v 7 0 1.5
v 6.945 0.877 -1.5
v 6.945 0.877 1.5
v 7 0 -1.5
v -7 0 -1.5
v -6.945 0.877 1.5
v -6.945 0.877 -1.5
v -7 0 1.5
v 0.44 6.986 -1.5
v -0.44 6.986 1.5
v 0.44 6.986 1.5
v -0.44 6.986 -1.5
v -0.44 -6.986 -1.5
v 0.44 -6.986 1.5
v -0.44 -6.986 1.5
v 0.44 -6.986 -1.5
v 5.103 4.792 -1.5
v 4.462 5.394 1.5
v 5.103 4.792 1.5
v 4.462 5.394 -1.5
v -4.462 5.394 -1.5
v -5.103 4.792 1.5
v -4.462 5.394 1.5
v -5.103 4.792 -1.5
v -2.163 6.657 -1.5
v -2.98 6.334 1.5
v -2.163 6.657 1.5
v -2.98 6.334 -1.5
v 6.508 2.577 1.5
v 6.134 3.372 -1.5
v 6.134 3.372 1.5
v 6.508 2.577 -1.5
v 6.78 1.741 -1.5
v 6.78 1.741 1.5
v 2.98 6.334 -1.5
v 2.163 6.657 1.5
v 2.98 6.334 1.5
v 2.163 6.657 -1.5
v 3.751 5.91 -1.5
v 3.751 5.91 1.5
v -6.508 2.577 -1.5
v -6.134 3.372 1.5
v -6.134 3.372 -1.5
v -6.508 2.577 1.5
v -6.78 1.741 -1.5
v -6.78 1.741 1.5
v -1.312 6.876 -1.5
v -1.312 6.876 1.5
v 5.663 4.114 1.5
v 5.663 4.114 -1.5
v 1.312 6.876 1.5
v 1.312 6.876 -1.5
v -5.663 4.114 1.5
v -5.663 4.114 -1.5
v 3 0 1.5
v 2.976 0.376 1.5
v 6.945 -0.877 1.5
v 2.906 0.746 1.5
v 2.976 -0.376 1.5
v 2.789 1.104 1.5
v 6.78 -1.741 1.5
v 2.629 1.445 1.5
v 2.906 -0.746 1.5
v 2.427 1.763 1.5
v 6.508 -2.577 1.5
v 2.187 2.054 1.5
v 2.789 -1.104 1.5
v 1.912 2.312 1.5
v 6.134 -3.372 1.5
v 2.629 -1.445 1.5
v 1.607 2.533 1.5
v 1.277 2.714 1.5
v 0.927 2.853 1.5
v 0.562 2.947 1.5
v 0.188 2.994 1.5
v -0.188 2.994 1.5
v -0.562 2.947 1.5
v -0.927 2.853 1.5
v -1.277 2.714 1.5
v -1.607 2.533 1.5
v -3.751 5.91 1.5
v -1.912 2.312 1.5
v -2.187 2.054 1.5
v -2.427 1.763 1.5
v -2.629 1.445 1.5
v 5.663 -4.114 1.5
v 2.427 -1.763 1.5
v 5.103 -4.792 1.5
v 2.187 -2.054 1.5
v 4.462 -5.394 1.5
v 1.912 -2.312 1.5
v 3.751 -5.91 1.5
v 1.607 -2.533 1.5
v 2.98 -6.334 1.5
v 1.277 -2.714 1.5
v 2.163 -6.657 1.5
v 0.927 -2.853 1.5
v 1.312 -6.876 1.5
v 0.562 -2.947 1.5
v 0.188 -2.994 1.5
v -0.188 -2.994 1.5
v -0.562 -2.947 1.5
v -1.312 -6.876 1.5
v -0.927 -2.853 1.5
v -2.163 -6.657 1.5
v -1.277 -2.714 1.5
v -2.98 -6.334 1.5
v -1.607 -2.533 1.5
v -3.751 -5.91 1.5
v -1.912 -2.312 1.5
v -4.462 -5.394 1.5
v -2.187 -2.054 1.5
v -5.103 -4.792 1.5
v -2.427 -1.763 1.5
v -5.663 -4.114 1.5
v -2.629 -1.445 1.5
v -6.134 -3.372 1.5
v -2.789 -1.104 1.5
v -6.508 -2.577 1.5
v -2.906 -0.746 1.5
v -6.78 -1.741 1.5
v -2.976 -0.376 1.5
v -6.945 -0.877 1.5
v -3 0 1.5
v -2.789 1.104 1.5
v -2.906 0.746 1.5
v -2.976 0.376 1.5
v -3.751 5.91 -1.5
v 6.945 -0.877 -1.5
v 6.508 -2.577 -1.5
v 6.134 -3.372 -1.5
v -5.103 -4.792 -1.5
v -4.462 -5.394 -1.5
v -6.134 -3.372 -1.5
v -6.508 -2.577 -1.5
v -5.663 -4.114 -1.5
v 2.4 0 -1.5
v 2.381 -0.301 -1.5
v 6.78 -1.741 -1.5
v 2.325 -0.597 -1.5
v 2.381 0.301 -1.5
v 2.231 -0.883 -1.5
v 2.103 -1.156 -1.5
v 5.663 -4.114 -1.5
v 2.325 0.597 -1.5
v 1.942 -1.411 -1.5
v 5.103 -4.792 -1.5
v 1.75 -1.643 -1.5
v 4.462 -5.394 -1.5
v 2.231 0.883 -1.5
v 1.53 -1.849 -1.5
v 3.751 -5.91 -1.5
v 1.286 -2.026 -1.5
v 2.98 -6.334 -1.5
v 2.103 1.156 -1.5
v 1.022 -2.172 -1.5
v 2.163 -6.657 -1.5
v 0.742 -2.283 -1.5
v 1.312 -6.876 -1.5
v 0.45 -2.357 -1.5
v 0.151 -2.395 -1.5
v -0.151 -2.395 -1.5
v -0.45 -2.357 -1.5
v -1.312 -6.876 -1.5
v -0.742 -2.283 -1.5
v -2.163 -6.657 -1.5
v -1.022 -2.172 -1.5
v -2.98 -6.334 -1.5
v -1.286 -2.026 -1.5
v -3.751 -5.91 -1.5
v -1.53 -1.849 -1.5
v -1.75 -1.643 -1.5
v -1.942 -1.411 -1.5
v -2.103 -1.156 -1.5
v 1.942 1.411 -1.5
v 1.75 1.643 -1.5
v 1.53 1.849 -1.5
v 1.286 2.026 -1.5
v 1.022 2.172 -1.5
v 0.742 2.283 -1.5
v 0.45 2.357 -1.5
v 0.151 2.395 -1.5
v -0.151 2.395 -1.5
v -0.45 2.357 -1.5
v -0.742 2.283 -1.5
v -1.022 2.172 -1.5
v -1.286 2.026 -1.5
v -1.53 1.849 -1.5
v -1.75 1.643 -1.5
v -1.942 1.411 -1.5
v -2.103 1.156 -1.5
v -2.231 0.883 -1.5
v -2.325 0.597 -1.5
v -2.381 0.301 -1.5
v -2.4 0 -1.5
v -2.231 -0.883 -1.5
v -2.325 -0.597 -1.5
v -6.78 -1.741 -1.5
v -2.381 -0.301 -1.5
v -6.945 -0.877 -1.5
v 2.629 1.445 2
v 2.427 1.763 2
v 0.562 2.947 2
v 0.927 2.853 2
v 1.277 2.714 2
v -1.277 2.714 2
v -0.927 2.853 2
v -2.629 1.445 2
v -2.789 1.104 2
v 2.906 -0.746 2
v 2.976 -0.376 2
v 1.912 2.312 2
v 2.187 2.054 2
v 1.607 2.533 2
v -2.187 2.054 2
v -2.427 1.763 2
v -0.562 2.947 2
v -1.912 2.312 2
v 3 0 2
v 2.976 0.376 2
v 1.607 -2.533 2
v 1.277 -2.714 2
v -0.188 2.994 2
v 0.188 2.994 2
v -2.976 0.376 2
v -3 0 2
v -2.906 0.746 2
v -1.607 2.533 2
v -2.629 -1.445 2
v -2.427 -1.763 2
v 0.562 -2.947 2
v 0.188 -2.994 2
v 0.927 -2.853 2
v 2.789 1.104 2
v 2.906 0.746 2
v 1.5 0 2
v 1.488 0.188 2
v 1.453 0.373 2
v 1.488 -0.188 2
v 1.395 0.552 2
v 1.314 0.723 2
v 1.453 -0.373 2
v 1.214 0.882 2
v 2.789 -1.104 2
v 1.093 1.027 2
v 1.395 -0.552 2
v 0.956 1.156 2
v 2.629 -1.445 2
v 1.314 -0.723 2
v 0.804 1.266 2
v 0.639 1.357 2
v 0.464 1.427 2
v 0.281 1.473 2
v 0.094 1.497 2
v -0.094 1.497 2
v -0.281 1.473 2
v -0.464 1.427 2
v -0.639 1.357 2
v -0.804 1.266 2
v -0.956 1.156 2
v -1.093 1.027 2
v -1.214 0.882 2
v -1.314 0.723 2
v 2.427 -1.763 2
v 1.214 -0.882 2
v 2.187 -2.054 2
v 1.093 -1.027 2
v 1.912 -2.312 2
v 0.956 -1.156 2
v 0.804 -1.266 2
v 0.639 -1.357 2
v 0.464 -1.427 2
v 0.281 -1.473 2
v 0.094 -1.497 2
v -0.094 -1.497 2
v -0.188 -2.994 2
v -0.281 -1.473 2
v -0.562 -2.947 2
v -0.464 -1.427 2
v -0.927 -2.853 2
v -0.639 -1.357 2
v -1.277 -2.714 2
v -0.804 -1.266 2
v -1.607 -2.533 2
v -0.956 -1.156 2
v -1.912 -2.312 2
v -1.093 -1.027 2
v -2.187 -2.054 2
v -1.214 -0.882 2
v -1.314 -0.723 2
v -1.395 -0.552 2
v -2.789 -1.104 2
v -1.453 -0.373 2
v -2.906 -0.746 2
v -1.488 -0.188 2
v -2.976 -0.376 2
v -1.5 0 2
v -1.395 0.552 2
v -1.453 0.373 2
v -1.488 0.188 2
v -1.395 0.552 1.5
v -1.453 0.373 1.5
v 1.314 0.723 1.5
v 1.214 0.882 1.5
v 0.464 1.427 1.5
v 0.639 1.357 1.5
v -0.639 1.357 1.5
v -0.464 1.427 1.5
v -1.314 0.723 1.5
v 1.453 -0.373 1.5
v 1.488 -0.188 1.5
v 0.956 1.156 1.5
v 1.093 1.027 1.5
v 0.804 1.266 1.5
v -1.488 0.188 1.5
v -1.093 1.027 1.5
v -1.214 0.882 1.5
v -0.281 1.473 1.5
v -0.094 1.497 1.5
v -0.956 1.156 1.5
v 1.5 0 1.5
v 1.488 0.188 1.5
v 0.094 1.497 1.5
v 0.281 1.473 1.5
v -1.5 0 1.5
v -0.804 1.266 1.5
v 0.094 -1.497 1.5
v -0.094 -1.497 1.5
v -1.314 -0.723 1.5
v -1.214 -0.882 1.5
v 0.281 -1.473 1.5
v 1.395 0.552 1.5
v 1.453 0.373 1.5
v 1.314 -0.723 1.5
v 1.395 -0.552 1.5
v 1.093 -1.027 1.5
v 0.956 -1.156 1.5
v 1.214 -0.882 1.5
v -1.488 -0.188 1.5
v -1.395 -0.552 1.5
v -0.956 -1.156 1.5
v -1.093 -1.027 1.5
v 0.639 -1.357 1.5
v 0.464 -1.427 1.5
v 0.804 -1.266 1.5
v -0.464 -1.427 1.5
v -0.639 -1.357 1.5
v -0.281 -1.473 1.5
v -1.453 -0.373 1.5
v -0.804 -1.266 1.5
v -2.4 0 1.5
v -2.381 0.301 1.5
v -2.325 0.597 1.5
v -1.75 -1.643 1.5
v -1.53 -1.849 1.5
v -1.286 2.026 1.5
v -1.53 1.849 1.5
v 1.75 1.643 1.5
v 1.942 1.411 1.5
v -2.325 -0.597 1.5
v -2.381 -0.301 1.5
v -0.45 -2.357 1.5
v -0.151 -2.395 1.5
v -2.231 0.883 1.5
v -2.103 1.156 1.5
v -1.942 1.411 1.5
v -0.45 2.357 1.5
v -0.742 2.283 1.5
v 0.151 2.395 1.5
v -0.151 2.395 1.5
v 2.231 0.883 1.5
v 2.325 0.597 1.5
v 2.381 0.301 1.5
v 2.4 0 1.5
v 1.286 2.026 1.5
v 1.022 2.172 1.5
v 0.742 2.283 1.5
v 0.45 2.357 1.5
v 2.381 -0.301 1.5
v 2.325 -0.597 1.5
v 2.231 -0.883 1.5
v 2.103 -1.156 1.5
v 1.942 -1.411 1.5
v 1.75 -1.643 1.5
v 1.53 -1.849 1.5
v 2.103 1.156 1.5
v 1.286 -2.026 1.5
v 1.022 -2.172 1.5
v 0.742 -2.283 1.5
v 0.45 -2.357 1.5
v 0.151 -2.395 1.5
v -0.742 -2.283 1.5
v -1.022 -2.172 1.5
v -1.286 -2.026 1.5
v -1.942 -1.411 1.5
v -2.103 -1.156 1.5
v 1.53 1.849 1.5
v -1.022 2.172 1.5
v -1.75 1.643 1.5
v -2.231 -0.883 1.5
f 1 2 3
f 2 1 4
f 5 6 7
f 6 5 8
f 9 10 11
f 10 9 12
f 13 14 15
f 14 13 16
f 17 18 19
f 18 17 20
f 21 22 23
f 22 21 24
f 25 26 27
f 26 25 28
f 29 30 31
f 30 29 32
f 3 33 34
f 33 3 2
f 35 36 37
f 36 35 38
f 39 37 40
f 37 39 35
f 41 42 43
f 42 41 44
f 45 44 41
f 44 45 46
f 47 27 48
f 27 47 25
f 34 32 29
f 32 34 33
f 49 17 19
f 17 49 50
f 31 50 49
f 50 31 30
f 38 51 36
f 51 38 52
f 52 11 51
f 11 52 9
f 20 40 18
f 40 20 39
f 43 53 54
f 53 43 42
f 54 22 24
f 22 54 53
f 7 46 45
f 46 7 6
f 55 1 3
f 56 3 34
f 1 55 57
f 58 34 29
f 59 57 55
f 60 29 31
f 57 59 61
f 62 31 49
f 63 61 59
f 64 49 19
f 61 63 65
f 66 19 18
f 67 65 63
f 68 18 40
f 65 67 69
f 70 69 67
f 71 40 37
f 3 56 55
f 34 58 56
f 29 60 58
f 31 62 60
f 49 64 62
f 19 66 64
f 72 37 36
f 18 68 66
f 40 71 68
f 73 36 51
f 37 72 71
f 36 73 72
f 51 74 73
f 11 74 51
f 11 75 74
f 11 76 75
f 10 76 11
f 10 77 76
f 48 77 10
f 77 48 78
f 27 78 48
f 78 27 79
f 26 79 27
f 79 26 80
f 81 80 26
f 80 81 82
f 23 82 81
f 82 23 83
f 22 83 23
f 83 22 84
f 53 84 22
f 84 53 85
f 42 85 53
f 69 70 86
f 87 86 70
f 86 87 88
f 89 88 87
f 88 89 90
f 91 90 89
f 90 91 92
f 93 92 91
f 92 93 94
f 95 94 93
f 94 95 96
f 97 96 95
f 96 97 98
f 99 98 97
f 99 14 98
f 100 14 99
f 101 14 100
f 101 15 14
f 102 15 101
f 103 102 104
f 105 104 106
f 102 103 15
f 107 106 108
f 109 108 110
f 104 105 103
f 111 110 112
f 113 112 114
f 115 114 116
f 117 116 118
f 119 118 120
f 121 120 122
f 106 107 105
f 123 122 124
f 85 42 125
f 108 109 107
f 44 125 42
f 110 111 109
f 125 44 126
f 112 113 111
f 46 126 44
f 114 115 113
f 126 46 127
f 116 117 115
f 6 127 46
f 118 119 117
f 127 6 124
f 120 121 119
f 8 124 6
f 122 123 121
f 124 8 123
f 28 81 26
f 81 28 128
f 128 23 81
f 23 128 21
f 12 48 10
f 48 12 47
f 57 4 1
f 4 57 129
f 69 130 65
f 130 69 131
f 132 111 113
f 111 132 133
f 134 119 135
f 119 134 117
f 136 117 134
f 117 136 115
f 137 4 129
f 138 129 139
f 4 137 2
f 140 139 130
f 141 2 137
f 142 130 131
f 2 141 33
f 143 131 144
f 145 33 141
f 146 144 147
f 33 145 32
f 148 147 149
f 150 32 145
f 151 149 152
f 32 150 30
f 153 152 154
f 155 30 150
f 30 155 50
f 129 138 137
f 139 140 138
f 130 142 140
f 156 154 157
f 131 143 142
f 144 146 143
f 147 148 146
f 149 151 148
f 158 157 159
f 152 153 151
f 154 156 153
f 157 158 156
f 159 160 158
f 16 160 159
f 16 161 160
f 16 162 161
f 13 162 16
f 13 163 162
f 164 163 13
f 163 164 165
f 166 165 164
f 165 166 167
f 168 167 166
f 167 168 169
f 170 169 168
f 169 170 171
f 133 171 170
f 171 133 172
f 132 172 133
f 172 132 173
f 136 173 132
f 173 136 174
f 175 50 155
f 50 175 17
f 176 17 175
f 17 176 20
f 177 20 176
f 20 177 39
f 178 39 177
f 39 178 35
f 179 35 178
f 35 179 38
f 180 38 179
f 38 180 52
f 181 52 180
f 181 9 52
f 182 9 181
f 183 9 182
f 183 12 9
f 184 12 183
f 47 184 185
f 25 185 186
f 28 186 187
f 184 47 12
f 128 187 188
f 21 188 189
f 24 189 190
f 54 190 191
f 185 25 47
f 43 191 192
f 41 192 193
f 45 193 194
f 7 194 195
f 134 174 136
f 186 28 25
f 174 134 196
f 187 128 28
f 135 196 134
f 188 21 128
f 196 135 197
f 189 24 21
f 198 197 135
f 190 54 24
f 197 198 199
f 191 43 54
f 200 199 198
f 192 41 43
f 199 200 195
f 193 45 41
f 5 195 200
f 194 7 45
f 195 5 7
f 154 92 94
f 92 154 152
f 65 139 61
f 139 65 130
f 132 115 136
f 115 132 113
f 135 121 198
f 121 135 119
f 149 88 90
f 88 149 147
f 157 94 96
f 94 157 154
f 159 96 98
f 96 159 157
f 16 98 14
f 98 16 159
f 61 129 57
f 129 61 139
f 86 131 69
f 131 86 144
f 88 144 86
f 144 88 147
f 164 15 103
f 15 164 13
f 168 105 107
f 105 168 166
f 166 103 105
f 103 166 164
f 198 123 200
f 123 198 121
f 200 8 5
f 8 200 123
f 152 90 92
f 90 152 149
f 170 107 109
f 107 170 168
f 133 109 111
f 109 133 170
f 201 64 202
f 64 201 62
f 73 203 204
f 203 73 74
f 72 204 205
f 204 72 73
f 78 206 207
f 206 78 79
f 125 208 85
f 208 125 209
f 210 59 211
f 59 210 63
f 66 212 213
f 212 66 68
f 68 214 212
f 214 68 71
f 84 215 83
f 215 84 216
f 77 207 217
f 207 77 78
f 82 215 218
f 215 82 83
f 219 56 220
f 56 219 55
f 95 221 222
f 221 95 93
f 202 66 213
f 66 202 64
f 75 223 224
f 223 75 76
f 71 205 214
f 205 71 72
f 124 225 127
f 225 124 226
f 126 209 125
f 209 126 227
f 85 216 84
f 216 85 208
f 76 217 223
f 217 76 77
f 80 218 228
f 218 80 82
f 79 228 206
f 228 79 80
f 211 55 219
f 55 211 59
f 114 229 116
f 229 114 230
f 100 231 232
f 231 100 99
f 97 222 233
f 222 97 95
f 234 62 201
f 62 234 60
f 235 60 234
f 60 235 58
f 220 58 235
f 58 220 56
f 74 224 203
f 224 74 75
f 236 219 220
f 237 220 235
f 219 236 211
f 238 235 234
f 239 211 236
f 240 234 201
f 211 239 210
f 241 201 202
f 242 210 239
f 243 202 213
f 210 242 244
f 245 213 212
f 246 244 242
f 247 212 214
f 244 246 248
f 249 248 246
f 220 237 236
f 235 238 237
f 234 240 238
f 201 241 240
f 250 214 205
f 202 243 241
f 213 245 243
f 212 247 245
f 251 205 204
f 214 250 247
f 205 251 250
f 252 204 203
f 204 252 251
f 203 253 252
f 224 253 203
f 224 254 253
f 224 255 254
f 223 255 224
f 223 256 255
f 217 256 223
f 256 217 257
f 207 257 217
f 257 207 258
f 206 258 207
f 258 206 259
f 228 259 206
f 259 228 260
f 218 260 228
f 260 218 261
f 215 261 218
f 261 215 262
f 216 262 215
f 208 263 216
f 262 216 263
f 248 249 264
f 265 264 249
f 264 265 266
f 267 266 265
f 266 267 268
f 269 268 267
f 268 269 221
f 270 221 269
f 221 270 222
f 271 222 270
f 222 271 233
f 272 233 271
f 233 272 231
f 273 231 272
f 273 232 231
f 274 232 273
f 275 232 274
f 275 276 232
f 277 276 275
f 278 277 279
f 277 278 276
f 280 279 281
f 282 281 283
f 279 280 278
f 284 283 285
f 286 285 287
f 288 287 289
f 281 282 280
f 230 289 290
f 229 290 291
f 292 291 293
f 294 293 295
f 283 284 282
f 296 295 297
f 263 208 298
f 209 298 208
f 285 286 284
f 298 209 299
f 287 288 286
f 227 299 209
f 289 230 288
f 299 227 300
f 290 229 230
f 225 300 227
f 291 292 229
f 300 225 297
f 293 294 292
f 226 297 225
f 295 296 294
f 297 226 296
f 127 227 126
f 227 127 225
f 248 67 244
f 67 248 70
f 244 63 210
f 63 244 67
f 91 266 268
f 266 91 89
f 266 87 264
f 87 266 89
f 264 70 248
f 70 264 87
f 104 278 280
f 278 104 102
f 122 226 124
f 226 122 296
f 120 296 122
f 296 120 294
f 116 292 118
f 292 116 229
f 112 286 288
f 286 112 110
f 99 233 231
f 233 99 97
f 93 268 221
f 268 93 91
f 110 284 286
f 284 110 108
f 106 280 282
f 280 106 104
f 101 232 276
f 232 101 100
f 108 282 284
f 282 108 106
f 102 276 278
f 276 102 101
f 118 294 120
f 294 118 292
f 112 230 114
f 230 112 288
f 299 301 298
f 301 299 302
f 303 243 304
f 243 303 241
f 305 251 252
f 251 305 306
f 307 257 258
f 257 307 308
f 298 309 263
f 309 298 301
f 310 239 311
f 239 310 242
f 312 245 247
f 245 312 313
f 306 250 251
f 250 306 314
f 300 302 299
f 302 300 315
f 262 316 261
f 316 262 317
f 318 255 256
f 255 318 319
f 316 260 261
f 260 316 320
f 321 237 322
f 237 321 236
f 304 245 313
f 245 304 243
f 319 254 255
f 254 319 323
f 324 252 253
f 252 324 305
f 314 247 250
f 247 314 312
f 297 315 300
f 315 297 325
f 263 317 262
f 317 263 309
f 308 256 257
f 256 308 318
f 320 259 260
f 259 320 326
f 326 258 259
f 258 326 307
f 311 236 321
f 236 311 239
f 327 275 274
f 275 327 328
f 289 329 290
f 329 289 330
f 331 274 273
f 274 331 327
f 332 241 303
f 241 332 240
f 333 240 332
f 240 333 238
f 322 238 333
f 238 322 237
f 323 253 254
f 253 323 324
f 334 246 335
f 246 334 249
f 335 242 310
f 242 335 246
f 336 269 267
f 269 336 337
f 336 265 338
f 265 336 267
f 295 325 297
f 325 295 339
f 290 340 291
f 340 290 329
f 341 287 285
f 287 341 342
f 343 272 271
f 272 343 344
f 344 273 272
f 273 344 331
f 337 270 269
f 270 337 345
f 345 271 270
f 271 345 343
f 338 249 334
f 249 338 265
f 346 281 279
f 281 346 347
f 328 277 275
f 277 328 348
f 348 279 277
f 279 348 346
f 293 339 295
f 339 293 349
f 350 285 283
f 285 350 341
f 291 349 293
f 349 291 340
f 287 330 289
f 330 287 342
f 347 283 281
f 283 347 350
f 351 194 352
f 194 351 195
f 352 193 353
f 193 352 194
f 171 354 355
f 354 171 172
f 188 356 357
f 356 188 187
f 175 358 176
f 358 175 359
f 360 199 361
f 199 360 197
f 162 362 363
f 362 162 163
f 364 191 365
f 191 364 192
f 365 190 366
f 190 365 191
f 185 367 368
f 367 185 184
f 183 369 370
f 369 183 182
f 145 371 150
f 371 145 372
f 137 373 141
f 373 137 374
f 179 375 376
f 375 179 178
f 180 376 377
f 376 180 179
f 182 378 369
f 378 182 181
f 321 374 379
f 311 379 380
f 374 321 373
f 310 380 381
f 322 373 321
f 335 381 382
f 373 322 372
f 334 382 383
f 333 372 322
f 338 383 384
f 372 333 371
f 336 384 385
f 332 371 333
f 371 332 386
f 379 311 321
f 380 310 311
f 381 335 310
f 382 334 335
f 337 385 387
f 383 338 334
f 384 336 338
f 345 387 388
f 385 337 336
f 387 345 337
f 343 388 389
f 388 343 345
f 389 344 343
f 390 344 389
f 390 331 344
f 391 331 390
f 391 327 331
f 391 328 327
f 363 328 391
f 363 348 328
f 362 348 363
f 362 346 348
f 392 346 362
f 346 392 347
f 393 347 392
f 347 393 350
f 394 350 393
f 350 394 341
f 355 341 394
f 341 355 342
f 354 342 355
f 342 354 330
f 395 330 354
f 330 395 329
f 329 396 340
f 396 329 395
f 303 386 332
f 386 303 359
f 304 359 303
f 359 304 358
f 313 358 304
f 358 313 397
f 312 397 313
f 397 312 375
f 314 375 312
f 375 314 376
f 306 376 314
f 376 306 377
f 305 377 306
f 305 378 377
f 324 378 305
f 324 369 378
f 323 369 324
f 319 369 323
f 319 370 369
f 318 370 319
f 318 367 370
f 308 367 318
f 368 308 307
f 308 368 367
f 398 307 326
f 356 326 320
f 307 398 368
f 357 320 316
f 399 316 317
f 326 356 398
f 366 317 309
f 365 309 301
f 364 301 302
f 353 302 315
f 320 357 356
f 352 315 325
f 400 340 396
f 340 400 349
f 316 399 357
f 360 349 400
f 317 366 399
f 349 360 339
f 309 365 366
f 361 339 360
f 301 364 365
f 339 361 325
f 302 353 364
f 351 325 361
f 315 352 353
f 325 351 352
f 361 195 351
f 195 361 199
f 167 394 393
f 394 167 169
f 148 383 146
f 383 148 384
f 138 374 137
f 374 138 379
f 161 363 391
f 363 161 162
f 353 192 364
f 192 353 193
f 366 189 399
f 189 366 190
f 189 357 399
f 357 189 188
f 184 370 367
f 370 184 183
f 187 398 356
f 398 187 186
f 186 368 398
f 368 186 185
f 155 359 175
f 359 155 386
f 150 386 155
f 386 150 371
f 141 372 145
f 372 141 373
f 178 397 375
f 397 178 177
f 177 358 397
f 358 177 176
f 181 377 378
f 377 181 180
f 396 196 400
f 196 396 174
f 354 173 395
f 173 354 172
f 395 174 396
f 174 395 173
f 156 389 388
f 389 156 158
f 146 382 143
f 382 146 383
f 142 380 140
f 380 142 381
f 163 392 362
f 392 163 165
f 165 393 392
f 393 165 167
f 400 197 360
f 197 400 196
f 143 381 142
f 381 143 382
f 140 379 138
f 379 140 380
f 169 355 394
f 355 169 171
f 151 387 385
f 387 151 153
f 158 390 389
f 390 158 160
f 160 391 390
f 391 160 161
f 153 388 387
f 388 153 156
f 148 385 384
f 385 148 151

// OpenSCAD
$fn = 50;


difference() {
	union() {
		translate(v = [0, 0, -1.5000000000]) {
			rotate(a = [0, 0, 0]) {
				cylinder(h = 3, r = 7.0000000000);
			}
		}
		translate(v = [0, 0, -1.5000000000]) {
			rotate(a = [0, 0, 0]) {
				cylinder(h = 3.5000000000, r = 3.0000000000);
			}
		}
	}
	union() {
		translate(v = [0, 0, -125.0000000000]) {
			rotate(a = [0, 0, 0]) {
				cylinder(h = 250, r = 1.5000000000);
			}
		}
		#translate(v = [0, 0, 1.5000000000]) {
			rotate(a = [0, 180, 0]) {
				cylinder(h = 3, r1 = 2.4000000000, r2 = 2.4000000000);
			}
		}
		#translate(v = [0, 0, 2.0000000000]) {
			rotate(a = [0, 180, 0]) {
				cylinder(h = 3.5000000000, r = 1.5000000000);
			}
		}
	}
}
